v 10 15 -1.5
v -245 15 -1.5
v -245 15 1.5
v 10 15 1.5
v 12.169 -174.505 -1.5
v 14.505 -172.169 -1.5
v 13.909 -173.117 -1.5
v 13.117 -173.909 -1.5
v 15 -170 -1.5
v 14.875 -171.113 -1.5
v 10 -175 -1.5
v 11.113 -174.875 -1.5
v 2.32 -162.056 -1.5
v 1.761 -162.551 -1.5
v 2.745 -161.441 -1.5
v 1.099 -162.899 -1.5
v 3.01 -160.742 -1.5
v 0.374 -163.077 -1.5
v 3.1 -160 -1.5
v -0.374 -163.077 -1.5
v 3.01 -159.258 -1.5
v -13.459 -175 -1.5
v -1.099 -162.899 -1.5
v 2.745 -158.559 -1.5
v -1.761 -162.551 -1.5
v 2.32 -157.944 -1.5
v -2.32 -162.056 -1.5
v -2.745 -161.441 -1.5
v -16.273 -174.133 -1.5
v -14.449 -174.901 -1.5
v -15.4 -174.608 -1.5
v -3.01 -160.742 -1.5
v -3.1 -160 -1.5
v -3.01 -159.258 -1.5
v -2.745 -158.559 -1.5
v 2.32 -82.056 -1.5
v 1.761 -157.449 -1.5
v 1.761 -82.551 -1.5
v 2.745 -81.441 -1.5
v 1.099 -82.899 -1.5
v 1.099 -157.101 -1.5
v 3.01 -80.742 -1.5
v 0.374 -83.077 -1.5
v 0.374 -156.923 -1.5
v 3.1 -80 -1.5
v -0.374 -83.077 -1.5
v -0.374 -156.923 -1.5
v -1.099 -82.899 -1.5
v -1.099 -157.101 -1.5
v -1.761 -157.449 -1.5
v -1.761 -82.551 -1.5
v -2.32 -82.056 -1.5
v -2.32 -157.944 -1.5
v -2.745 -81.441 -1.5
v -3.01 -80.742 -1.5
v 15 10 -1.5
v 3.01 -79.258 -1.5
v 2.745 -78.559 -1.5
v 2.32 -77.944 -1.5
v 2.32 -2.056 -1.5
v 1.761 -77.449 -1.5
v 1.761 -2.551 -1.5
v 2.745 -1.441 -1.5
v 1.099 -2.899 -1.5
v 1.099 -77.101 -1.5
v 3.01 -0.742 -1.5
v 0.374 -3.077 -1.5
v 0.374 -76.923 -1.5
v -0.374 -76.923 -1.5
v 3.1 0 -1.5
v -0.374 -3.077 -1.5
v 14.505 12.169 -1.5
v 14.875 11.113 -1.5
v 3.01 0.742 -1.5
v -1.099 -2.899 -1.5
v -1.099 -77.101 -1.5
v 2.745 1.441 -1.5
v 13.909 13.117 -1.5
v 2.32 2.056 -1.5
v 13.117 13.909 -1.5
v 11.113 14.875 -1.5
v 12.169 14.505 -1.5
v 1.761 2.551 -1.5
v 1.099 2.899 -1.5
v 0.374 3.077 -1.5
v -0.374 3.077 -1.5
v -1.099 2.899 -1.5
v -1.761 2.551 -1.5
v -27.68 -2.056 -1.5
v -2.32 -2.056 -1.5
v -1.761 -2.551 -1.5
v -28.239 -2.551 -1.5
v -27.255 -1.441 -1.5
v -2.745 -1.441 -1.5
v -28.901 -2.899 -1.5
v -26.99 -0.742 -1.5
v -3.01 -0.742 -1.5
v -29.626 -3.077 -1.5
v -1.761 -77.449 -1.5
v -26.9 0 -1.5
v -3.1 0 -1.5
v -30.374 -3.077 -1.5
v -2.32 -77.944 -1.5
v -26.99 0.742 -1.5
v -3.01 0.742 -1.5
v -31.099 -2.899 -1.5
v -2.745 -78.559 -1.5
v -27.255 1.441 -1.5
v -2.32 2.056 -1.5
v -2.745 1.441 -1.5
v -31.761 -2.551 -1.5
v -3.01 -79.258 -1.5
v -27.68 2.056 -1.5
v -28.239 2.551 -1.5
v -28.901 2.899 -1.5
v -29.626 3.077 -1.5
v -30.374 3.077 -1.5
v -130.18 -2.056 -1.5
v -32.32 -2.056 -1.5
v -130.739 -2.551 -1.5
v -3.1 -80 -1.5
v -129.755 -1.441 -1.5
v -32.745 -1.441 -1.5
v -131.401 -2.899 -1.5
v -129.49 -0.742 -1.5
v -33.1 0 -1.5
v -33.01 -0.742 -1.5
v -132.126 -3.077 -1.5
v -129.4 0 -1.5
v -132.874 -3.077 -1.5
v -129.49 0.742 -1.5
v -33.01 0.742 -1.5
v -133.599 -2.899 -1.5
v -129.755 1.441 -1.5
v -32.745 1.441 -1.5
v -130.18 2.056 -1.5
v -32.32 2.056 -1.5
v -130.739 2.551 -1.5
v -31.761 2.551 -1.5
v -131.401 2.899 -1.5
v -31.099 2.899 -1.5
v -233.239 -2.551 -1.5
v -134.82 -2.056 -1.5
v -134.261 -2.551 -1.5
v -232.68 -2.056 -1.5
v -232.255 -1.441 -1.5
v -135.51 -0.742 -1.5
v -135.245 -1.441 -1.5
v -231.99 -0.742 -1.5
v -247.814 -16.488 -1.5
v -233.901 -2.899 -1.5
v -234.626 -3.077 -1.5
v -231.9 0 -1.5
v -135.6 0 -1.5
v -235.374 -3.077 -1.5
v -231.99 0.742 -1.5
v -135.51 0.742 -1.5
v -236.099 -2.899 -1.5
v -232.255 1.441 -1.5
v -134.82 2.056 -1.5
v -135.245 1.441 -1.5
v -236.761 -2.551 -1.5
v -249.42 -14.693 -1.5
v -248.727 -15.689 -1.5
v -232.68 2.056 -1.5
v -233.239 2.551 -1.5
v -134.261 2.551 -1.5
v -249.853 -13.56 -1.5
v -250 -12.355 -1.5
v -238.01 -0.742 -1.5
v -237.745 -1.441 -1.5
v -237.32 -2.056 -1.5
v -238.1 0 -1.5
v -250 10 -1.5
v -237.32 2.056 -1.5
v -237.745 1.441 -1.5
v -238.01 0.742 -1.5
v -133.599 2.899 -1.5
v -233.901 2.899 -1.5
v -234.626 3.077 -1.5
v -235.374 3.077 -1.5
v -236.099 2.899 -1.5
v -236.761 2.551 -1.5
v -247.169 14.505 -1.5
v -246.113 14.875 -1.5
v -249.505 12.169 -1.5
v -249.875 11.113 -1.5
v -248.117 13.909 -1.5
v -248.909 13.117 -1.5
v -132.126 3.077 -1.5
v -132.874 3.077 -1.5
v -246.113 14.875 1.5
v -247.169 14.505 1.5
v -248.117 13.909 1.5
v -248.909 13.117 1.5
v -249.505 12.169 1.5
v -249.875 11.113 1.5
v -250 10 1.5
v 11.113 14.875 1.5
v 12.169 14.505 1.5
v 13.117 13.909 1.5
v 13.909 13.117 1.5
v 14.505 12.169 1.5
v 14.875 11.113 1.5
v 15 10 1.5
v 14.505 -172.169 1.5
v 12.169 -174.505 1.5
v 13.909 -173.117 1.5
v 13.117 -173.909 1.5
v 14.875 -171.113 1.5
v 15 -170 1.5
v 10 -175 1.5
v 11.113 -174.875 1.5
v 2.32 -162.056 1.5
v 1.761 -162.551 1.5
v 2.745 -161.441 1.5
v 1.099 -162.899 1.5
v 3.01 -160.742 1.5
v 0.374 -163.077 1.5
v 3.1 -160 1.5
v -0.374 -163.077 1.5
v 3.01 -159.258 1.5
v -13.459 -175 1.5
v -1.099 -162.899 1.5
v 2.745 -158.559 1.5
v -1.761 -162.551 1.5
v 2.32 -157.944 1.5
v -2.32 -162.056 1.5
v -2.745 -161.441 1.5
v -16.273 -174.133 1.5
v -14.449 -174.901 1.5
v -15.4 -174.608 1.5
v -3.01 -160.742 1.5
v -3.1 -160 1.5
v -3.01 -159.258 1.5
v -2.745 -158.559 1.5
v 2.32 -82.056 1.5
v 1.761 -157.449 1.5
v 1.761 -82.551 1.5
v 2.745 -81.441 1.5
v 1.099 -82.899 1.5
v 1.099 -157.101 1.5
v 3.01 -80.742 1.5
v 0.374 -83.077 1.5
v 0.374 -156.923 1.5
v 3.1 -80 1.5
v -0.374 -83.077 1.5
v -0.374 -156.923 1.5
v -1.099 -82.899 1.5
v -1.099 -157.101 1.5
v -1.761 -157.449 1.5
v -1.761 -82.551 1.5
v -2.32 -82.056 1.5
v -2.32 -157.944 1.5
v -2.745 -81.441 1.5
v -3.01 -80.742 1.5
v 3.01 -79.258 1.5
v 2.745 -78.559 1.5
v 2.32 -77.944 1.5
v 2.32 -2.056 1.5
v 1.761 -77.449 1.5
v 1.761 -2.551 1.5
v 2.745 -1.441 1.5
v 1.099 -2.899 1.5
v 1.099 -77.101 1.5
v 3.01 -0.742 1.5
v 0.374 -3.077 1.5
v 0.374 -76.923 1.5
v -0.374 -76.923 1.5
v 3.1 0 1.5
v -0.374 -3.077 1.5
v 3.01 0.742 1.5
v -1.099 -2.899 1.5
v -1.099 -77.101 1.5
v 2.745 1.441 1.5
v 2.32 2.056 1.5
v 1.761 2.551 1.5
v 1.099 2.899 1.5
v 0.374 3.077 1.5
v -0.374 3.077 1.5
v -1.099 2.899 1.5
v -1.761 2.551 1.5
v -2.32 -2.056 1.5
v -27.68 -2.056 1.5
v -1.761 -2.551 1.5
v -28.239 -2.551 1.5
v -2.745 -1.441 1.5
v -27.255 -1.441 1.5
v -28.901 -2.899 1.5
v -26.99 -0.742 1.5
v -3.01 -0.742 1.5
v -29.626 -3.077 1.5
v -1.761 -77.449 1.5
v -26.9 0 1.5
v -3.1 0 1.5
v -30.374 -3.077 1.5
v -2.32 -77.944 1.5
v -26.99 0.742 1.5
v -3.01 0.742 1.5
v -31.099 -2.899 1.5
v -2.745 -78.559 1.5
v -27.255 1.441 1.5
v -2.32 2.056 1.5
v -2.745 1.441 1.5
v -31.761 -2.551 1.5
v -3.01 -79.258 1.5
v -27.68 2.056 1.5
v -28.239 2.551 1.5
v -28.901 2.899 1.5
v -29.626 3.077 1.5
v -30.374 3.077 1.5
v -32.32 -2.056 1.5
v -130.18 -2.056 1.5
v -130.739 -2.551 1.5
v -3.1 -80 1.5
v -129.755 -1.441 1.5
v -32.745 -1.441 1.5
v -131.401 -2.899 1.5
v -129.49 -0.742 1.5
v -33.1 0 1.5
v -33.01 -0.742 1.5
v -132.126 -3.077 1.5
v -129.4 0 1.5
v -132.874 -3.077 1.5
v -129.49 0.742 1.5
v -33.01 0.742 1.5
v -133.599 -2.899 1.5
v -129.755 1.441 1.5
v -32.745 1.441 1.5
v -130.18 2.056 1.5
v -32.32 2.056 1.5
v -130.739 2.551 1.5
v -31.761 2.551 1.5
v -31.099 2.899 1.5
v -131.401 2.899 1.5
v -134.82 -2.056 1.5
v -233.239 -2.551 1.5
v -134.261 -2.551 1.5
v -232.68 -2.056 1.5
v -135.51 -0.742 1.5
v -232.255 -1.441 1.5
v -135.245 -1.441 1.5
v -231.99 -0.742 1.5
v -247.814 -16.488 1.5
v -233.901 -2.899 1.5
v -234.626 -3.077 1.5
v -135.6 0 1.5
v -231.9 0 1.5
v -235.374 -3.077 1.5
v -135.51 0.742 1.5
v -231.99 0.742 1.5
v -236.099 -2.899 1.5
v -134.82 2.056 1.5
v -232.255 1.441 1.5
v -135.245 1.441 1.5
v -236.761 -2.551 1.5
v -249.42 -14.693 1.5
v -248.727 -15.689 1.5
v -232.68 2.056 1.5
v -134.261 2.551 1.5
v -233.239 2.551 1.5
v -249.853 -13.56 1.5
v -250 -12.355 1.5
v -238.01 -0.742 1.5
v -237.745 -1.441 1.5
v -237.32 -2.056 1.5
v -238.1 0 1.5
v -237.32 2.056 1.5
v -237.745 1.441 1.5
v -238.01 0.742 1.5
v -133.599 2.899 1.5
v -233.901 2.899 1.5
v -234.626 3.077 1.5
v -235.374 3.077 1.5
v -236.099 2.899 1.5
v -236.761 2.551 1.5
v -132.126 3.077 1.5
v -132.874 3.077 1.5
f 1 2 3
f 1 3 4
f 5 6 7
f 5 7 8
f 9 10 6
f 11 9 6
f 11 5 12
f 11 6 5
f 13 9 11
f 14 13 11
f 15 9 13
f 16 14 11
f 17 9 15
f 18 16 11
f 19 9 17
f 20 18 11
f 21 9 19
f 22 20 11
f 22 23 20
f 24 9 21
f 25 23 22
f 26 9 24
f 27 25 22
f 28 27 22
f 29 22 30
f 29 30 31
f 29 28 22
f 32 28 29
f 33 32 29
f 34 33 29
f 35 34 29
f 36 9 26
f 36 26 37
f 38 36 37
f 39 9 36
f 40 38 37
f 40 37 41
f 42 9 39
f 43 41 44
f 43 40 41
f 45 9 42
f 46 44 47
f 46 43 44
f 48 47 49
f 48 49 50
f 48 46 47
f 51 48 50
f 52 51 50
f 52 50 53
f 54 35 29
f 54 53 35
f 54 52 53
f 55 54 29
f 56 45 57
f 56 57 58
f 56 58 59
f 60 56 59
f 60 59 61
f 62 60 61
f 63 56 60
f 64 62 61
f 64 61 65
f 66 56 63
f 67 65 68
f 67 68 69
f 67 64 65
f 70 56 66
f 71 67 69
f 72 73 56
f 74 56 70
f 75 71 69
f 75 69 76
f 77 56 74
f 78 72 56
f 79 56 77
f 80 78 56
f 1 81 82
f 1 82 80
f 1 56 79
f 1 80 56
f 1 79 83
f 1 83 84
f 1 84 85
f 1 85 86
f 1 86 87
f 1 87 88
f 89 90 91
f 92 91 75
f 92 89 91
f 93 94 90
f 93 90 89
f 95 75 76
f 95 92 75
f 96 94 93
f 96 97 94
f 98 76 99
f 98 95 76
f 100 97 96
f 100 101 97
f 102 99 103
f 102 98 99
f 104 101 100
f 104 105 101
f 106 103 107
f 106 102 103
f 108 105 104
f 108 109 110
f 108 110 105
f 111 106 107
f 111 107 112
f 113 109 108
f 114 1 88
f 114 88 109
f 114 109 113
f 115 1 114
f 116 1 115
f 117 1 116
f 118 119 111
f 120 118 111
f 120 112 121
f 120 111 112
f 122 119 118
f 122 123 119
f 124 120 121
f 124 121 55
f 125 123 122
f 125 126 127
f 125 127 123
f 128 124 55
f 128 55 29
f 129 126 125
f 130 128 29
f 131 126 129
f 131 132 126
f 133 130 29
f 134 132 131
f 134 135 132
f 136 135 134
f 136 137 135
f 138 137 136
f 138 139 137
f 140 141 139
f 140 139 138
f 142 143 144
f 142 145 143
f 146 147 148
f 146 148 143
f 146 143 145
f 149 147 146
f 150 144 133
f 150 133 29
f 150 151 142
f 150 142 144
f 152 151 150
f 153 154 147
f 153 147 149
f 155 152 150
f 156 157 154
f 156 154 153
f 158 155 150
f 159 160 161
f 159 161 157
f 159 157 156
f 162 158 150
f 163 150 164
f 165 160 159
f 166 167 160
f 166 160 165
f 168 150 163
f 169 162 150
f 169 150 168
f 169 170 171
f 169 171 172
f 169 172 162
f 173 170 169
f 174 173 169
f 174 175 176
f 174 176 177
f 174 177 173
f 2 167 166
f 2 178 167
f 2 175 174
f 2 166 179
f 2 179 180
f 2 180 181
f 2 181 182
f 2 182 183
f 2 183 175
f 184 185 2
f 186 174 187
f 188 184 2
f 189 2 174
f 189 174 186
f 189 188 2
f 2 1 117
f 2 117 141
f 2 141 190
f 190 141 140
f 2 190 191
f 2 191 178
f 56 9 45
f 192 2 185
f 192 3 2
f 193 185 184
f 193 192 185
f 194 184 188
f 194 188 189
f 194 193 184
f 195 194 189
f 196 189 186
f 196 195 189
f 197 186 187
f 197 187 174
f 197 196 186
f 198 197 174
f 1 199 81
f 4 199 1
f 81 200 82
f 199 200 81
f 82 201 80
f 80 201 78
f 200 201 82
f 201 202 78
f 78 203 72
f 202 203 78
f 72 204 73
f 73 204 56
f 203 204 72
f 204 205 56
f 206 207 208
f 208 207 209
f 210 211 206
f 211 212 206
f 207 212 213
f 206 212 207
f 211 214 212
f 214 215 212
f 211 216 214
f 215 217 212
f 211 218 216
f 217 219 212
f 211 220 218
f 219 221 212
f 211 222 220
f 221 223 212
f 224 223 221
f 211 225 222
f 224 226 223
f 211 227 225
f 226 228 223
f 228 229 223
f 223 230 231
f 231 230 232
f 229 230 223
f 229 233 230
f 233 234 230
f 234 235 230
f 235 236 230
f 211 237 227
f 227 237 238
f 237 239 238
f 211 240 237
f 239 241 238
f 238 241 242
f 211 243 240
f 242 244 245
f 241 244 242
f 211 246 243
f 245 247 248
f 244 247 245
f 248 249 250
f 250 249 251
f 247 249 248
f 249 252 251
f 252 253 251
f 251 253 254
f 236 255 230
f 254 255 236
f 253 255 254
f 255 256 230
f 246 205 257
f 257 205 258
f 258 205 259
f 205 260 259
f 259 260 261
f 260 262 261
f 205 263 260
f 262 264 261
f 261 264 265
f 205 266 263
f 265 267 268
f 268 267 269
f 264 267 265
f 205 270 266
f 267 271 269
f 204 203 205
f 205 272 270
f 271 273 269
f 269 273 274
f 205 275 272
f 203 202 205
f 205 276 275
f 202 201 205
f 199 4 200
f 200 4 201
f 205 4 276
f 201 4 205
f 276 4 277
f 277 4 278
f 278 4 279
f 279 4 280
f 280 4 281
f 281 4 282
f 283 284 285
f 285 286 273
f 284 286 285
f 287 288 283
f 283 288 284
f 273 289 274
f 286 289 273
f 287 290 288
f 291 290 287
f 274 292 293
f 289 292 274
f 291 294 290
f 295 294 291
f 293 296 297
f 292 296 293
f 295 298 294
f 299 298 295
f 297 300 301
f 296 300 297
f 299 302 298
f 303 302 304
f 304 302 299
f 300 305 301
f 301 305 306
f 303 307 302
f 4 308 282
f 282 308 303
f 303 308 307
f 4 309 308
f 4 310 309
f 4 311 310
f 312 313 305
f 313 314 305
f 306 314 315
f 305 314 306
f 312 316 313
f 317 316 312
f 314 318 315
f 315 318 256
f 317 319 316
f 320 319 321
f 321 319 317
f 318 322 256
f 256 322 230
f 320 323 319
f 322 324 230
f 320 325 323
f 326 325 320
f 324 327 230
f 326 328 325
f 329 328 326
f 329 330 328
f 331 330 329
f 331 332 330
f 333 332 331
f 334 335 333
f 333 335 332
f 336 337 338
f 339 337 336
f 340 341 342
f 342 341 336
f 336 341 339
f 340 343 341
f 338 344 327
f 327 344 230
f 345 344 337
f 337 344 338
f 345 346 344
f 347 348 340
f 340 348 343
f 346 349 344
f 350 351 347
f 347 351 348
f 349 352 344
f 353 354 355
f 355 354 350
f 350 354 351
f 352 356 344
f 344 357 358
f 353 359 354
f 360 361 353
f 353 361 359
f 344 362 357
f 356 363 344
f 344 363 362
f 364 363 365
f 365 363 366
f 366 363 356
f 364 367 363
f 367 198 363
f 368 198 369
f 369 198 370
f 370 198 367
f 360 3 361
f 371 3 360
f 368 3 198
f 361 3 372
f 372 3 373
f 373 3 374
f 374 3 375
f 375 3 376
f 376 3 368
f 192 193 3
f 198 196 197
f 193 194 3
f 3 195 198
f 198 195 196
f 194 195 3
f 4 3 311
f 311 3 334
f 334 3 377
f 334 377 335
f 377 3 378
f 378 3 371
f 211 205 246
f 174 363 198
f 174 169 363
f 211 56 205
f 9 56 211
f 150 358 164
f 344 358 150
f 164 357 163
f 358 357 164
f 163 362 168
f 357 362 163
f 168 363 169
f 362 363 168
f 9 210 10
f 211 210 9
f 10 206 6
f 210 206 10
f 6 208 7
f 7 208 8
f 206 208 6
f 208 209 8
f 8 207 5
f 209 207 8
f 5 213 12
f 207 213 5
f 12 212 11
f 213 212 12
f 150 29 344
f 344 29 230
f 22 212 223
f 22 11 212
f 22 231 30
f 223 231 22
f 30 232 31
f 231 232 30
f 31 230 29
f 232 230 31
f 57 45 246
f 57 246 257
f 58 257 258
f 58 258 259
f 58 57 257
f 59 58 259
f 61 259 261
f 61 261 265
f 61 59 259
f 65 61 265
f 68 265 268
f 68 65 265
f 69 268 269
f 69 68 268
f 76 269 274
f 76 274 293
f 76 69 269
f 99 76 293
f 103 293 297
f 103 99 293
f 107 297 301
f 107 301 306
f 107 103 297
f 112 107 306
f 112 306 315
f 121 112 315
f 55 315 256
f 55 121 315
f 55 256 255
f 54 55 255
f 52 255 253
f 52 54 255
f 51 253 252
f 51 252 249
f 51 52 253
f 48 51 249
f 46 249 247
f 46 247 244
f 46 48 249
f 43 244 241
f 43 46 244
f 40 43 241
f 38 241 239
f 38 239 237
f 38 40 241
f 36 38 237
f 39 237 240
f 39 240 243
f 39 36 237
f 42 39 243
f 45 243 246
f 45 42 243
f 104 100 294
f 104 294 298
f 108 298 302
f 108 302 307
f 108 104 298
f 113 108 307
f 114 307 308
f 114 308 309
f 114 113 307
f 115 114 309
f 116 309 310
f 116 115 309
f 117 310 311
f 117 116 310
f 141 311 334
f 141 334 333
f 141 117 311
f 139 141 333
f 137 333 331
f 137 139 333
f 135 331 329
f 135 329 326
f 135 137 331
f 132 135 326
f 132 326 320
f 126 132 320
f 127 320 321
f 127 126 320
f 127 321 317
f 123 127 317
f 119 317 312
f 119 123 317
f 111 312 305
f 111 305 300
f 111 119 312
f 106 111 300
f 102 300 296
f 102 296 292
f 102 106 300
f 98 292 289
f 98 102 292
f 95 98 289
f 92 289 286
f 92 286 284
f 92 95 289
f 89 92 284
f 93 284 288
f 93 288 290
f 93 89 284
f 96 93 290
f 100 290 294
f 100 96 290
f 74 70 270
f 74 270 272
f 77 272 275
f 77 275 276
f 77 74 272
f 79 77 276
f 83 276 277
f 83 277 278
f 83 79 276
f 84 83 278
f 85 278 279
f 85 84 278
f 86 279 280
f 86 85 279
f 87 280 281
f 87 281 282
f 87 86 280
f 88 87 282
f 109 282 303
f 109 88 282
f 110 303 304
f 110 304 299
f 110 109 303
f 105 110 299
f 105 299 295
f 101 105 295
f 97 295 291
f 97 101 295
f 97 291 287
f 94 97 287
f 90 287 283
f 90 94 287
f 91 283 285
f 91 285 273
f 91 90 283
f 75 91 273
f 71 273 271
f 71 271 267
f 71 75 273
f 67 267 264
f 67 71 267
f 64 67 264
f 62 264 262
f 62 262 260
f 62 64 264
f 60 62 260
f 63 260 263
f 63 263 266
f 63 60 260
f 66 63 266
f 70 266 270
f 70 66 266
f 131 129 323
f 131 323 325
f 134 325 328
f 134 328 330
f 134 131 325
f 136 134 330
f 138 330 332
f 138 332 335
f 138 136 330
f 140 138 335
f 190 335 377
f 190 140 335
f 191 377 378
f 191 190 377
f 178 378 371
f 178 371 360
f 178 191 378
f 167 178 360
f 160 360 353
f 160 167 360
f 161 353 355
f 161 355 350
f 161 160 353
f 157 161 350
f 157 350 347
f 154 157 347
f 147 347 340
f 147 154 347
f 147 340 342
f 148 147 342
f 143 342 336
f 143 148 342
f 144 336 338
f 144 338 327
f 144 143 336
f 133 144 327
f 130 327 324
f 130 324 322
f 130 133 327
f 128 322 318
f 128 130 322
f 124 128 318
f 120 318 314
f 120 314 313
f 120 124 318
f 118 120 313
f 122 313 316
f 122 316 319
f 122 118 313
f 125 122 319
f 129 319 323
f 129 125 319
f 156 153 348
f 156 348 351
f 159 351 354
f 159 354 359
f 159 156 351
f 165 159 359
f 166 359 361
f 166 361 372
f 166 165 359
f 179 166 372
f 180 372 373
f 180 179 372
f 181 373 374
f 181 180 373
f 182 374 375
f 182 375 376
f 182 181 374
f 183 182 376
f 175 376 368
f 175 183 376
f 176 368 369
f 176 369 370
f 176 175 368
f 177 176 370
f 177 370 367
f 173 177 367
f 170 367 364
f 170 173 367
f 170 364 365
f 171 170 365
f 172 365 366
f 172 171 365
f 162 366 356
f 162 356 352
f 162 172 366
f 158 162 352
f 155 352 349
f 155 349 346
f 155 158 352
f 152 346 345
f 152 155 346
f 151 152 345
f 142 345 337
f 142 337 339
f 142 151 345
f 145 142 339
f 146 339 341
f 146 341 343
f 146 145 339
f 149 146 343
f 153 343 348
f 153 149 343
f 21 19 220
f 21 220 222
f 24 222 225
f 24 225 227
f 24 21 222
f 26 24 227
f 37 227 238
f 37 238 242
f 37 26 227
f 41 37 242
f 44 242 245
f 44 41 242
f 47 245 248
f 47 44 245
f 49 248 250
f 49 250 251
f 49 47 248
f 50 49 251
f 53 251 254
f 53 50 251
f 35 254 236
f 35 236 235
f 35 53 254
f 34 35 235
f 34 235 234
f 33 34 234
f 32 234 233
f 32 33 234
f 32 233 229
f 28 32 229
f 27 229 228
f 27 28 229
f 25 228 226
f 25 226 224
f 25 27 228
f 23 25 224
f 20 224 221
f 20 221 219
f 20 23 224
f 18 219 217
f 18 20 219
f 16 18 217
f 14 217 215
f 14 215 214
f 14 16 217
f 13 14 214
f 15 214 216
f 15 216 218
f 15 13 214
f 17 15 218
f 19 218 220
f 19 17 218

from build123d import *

# Parameters (mm, degrees)
SKETCH_R  = 3.1
PAD_DEPTH = 1.5
FILLET_R  = 5


with BuildPart() as part:
    # Sketch → Pad (new body, symmetric)
    with BuildSketch(Plane.XY):
        Polygon((-250, 15), (15, 15), (15, -175), (-15, -175), (-250, -15), align=None)
        Circle(SKETCH_R, mode=Mode.SUBTRACT)
        with Locations((0, -160)):
            Circle(SKETCH_R, mode=Mode.SUBTRACT)
        with Locations((-30, 0)):
            Circle(SKETCH_R, mode=Mode.SUBTRACT)
        with Locations((-235, 0)):
            Circle(SKETCH_R, mode=Mode.SUBTRACT)
        with Locations((-132.5, 0)):
            Circle(SKETCH_R, mode=Mode.SUBTRACT)
        with Locations((0, -80)):
            Circle(SKETCH_R, mode=Mode.SUBTRACT)
    extrude(amount=PAD_DEPTH, both=True)

    # Fillet
    fillet_edges = [part.edges().sort_by_distance(p)[0] for p in [
        (-250, 15, 0),
        (-250, -15, 0),
        (15, 15, 0),
        (-15, -175, 0),
        (15, -175, 0),
    ]]
    fillet(fillet_edges, radius=FILLET_R)


solid = part.part
